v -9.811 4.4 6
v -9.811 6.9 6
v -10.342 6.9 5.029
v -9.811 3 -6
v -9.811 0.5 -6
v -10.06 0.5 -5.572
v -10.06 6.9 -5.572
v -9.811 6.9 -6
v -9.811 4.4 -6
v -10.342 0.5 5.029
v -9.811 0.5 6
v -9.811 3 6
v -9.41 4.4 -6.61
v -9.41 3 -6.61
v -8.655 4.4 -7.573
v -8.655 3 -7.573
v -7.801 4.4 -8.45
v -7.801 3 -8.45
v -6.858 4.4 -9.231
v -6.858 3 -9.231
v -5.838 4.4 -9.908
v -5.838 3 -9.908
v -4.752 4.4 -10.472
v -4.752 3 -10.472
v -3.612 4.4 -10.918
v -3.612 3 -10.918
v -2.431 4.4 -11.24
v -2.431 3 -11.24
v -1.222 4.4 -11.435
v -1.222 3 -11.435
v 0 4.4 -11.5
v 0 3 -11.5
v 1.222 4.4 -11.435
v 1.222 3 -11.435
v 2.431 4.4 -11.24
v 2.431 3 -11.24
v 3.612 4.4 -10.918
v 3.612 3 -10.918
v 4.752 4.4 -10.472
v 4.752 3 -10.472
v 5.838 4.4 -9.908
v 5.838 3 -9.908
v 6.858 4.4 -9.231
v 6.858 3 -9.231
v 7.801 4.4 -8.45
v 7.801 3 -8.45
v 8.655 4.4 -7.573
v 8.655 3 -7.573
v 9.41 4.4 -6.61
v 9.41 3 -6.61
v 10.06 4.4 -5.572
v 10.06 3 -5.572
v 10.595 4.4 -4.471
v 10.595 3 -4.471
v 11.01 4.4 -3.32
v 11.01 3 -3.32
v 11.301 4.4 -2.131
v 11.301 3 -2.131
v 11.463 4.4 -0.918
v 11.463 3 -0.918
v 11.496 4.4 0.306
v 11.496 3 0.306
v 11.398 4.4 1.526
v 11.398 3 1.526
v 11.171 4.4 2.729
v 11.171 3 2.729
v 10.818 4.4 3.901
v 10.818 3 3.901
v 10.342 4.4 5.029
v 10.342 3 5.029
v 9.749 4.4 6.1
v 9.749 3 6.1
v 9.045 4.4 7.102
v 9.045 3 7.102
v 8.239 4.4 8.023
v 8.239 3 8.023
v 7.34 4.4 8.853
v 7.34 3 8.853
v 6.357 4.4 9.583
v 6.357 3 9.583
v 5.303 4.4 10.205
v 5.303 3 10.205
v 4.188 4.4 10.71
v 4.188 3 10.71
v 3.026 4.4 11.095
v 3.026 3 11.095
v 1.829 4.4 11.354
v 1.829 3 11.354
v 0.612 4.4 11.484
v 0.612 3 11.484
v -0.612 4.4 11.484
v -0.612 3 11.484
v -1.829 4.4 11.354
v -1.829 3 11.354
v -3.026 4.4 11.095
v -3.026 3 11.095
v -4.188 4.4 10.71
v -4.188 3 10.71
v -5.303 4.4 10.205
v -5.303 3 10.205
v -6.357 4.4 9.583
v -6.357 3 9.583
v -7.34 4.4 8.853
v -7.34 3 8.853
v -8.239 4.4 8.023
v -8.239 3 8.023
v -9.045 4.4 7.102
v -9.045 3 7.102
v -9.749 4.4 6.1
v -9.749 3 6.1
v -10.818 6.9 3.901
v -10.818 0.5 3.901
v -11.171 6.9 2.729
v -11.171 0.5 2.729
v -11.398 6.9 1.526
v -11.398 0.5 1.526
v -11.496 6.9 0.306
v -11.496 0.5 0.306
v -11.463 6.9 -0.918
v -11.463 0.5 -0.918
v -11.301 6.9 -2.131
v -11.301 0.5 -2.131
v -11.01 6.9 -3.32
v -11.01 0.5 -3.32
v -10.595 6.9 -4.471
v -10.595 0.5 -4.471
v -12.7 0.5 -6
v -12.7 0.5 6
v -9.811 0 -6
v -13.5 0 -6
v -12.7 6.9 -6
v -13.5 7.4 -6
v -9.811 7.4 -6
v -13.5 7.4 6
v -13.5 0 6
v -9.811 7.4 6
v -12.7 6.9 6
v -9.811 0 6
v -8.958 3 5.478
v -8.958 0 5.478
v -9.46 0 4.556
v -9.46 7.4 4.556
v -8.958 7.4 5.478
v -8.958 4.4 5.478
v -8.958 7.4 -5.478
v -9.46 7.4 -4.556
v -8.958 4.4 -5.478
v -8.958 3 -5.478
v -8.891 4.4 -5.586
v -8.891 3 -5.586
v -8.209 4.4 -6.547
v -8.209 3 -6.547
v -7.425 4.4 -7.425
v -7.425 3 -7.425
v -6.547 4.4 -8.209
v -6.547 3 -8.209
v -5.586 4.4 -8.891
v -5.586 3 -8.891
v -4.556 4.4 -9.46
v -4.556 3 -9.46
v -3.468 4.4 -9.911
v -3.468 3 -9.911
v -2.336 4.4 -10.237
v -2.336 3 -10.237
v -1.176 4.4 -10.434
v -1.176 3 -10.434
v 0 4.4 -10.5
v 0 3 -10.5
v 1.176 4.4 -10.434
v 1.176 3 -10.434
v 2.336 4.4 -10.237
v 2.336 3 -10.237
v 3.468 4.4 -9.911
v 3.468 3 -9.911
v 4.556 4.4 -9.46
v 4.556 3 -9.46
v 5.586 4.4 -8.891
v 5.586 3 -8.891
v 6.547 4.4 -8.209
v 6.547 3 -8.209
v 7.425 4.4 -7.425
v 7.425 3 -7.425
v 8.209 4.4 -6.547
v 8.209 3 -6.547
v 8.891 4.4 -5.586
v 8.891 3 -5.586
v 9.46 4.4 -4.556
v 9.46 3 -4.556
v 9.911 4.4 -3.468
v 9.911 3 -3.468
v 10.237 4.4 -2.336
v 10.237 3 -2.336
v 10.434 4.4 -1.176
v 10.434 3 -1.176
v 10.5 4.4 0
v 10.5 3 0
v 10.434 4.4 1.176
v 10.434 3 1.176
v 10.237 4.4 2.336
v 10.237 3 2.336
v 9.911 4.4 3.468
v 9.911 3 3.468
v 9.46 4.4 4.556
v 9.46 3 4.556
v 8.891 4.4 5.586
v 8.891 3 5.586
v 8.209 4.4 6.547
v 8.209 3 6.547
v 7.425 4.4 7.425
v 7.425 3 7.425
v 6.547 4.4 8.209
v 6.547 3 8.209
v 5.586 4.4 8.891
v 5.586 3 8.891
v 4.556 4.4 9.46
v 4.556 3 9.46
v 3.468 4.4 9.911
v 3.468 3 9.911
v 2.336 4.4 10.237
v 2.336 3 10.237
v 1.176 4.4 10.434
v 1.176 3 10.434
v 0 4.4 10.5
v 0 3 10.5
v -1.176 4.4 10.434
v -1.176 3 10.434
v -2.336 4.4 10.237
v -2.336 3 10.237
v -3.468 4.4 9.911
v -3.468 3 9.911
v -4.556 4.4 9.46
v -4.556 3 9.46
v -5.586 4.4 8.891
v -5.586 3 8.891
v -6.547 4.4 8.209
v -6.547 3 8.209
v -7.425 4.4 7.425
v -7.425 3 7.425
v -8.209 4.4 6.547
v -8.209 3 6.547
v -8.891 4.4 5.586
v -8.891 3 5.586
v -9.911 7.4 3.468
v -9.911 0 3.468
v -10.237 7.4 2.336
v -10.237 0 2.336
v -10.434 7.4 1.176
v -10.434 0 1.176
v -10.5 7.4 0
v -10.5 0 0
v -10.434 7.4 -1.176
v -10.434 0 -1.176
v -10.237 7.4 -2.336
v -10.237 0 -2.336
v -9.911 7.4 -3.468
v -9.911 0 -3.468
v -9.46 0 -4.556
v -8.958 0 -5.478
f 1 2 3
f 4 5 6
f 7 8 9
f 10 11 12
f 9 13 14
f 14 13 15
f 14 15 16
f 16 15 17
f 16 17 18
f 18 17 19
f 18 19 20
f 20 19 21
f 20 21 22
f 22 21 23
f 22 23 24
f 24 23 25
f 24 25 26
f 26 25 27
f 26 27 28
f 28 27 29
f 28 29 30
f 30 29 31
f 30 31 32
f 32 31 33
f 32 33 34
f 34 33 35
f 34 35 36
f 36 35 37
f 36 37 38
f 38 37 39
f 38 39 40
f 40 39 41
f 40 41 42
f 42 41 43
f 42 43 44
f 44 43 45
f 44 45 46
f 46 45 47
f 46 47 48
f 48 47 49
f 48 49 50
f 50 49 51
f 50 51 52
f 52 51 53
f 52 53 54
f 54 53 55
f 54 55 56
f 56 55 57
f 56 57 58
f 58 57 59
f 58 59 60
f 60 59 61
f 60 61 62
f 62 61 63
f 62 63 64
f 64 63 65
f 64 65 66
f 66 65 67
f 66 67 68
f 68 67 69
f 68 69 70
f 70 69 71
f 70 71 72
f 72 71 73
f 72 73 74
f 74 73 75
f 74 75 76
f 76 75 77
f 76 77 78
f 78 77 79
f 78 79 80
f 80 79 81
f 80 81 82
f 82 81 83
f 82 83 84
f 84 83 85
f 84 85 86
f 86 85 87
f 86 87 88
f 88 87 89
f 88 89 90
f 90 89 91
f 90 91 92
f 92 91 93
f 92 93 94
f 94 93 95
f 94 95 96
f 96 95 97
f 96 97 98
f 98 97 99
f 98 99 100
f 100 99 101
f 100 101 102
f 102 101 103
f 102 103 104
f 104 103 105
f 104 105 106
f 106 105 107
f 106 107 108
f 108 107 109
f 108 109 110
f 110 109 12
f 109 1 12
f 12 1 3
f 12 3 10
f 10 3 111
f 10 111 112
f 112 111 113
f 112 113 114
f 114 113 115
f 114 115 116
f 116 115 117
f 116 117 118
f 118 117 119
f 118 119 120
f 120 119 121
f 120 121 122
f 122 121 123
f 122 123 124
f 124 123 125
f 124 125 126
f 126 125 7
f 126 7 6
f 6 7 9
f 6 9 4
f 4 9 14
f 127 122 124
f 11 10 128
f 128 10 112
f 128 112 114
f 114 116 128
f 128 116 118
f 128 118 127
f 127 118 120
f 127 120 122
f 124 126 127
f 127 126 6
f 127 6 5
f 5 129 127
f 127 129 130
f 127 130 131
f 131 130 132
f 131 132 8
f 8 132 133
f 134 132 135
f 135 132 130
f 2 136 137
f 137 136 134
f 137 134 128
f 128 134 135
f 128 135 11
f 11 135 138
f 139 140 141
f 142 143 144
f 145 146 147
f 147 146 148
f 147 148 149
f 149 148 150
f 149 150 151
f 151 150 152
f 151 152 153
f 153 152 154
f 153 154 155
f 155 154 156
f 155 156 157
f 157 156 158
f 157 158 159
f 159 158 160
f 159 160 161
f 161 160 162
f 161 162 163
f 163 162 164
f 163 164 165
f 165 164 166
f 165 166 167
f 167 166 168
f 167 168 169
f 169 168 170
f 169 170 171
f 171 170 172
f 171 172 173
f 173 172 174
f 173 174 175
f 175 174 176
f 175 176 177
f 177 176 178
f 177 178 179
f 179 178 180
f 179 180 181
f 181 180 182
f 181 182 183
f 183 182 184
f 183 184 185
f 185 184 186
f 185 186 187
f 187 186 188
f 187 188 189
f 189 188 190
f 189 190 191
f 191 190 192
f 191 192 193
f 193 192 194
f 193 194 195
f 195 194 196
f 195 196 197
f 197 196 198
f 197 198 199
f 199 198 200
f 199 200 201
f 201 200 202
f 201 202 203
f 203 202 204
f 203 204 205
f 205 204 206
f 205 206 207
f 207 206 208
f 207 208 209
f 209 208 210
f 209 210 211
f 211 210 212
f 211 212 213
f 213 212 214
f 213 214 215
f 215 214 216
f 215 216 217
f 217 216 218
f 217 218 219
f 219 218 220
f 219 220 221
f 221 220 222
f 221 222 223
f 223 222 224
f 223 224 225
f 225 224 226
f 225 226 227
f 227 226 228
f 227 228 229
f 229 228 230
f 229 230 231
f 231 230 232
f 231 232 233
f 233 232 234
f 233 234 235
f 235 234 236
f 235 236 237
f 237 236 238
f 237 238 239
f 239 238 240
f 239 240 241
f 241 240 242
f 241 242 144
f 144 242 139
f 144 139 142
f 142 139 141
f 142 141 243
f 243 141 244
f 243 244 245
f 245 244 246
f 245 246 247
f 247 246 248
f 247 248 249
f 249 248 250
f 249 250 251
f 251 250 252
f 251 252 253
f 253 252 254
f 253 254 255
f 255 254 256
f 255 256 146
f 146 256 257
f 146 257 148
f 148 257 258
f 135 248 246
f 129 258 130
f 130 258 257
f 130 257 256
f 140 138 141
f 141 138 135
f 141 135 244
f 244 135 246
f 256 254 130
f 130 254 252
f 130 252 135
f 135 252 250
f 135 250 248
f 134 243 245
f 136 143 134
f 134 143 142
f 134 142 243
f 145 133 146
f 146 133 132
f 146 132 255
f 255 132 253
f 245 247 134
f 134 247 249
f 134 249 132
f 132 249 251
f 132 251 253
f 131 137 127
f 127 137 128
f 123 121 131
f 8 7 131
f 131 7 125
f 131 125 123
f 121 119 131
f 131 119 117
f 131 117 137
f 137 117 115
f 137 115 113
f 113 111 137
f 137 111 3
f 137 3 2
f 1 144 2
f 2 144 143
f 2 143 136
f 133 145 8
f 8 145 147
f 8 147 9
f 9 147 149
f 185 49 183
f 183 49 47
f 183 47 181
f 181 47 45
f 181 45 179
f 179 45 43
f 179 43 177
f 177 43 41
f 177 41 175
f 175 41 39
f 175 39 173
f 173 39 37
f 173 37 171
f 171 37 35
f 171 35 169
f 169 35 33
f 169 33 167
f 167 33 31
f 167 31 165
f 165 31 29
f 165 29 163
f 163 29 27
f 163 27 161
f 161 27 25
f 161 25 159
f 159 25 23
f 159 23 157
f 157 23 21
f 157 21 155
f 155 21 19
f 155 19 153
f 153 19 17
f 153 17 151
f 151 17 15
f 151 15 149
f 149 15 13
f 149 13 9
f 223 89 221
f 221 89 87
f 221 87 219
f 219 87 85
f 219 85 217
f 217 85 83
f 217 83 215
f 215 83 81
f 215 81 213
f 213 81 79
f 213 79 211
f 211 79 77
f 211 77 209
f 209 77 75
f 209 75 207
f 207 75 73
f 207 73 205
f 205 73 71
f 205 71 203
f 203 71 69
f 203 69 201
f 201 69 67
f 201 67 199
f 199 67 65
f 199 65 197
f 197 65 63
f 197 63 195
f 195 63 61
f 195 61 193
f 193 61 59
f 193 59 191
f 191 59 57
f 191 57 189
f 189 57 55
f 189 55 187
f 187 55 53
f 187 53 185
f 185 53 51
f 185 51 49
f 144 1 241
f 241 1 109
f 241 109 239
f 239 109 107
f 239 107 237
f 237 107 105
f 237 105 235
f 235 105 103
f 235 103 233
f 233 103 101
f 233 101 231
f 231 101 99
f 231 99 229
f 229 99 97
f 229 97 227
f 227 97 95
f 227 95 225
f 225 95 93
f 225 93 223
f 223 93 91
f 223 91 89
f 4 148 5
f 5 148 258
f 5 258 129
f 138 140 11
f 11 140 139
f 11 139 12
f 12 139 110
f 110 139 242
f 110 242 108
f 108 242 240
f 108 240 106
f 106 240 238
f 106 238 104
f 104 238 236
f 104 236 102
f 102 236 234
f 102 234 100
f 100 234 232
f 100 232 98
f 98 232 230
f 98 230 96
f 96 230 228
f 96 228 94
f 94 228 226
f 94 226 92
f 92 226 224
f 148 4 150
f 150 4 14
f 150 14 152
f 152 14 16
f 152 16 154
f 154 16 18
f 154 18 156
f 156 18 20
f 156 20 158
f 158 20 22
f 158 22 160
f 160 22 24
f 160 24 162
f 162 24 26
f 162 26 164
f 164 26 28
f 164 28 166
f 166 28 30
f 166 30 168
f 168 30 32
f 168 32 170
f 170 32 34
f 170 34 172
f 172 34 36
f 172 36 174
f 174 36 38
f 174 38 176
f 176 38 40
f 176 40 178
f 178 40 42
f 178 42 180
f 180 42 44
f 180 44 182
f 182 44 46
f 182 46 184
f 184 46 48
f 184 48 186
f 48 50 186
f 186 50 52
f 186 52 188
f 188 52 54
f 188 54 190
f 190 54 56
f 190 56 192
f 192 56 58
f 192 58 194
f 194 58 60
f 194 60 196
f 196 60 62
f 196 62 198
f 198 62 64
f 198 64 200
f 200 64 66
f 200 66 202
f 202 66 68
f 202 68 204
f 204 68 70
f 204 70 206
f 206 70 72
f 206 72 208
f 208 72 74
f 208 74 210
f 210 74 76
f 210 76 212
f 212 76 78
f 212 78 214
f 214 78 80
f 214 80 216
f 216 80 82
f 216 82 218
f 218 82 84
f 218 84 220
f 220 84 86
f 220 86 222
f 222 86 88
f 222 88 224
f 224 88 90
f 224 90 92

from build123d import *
from build123d.topology import SkipClean

# Parameters (mm, degrees)
EXTRUDE_1_DEPTH     = 0.5
EXTRUDE_2_DEPTH     = 6.4
EXTRUDE_3_DEPTH     = 0.5
EXTRUDE_START       = -7.4
EXTRUDE_6_DEPTH     = 7.4
SKETCH_16_W         = 0.8
SKETCH_16_H         = 12
EXTRUDE_10_DEPTH    = 6.4
EXTRUDE_11_DEPTH    = 0.5
CUT_EXTRUDE_START   = -3
CUT_EXTRUDE_1_DEPTH = 3
CUT_EXTRUDE_2_DEPTH = 3


# Read off the part's stored shape, not the designer's step: 凸台-拉伸2
with BuildPart() as part:
    # 草图1 → 凸台-拉伸1 (new body)
    with BuildSketch(Plane(origin=(0, 0, 0), x_dir=(1, 0, 0), z_dir=(0, 1, 0))):
        with BuildLine():
            Line((11.456239028, 1.002291042), (10.46004433, 0.915135299))
            ThreePointArc((10.46004433, 0.915135299), (-10.5, 0), (10.46004433, -0.915135299))
            Line((10.46004433, -0.915135299), (11.456239028, -1.002291042))
            ThreePointArc((11.456239028, -1.002291042), (5.310109052, -10.200624582), (-5.75, -9.959292144))
            ThreePointArc((-5.75, -9.959292144), (-8.028256991, -8.233898814), (-9.810708435, -6))
            Line((-9.810708435, -6), (-13.5, -6))
            Line((-13.5, -6), (-13.5, 0))
            Line((-13.5, 0), (-13.5, 6))
            Line((-13.5, 6), (-9.810708435, 6))
            ThreePointArc((-9.810708435, 6), (-8.028256991, 8.233898814), (-5.75, 9.959292144))
            ThreePointArc((-5.75, 9.959292144), (5.310109052, 10.200624582), (11.456239028, 1.002291042))
        make_face()
    extrude(amount=EXTRUDE_1_DEPTH)

    # 凸台-拉伸2 outline → 凸台-拉伸2 (add)
    with BuildSketch(Plane(origin=(0, 0.5, 0), x_dir=(1, 0, 0), z_dir=(0, 1, 0))):
        with BuildLine():
            ThreePointArc((11.456239028, 1.002291042), (-11.5, 0), (11.456239028, -1.002291042))
            Line((11.456239028, -1.002291042), (10.46004433, -0.915135299))
            ThreePointArc((10.46004433, -0.915135299), (-10.5, 0), (10.46004433, 0.915135299))
            Line((10.46004433, 0.915135299), (11.456239028, 1.002291042))
        make_face()
    extrude(amount=EXTRUDE_2_DEPTH)

    # 草图11 → 凸台-拉伸3 (add)
    with BuildSketch(Plane(origin=(0, 6.9, 0), x_dir=(1, 0, 0), z_dir=(0, 1, 0))):
        with BuildLine():
            Line((10.46004433, 0.915135299), (11.456239028, 1.002291042))
            ThreePointArc((11.456239028, 1.002291042), (-11.5, 0), (11.456239028, -1.002291042))
            Line((11.456239028, -1.002291042), (10.46004433, -0.915135299))
            ThreePointArc((10.46004433, -0.915135299), (-10.5, 0), (10.46004433, 0.915135299))
        make_face()
    extrude(amount=EXTRUDE_3_DEPTH)

    # 草图14 → 凸台-拉伸6 (add)
    with SkipClean():  # the faces are left unmerged after this step: merging them gives an invalid solid
        with BuildSketch(Plane(origin=(0, 7.4, 0), x_dir=(1, 0, 0), z_dir=(0, 1, 0)).offset(EXTRUDE_START)):
            with BuildLine():
                Line((10.46004433, 0.915135299), (11.456239028, 1.002291042))
                ThreePointArc((11.456239028, 1.002291042), (11.5, 0), (11.456239028, -1.002291042))
                Line((11.456239028, -1.002291042), (10.46004433, -0.915135299))
                ThreePointArc((10.46004433, -0.915135299), (10.5, 0), (10.46004433, 0.915135299))
            make_face()
        extrude(amount=EXTRUDE_6_DEPTH)
    add(part.part.scale(1), mode=Mode.REPLACE)  # the faces are merged on a copy

    # 草图16 → 凸台-拉伸10 (add)
    with BuildSketch(Plane(origin=(0, 0.5, 0), x_dir=(1, 0, 0), z_dir=(0, 1, 0))):
        with Locations((-13.1, 0)):
            Rectangle(SKETCH_16_W, SKETCH_16_H)
    extrude(amount=EXTRUDE_10_DEPTH)

    # 草图17 → 凸台-拉伸11 (add)
    with BuildSketch(Plane(origin=(0, 6.9, 0), x_dir=(1, 0, 0), z_dir=(0, 1, 0))):
        with BuildLine():
            Line((-13.5, 6), (-9.810708435, 6))
            ThreePointArc((-9.810708435, 6), (-11.5, 0), (-9.810708435, -6))
            Line((-9.810708435, -6), (-13.5, -6))
            Line((-13.5, -6), (-13.5, 6))
        make_face()
    extrude(amount=EXTRUDE_11_DEPTH)

    # 草图18 → 切除-拉伸1 (cut)
    with BuildSketch(Plane(origin=(0, 7.4, 0), x_dir=(1, 0, 0), z_dir=(0, 1, 0)).offset(CUT_EXTRUDE_START)):
        with BuildLine():
            Line((-9.810708435, 6), (-8.957603354, 5.47826087))
            ThreePointArc((-8.957603354, 5.47826087), (10.5, 0), (-8.957603354, -5.47826087))
            Line((-8.957603354, -5.47826087), (-9.810708435, -6))
            ThreePointArc((-9.810708435, -6), (11.5, 0), (-9.810708435, 6))
        make_face()
    extrude(amount=CUT_EXTRUDE_1_DEPTH, mode=Mode.SUBTRACT)

    # 草图19 → 切除-拉伸2 (cut)
    with BuildSketch(Plane(origin=(0, 0, 0), x_dir=(-1, 0, 0), z_dir=(0, -1, 0))):
        with BuildLine():
            Line((9.810708435, 6), (8.957603354, 5.47826087))
            ThreePointArc((8.957603354, 5.47826087), (-10.5, 0), (8.957603354, -5.47826087))
            Line((8.957603354, -5.47826087), (9.810708435, -6))
            ThreePointArc((9.810708435, -6), (-11.5, 0), (9.810708435, 6))
        make_face()
    extrude(amount=-CUT_EXTRUDE_2_DEPTH, mode=Mode.SUBTRACT)


solid = part.part
